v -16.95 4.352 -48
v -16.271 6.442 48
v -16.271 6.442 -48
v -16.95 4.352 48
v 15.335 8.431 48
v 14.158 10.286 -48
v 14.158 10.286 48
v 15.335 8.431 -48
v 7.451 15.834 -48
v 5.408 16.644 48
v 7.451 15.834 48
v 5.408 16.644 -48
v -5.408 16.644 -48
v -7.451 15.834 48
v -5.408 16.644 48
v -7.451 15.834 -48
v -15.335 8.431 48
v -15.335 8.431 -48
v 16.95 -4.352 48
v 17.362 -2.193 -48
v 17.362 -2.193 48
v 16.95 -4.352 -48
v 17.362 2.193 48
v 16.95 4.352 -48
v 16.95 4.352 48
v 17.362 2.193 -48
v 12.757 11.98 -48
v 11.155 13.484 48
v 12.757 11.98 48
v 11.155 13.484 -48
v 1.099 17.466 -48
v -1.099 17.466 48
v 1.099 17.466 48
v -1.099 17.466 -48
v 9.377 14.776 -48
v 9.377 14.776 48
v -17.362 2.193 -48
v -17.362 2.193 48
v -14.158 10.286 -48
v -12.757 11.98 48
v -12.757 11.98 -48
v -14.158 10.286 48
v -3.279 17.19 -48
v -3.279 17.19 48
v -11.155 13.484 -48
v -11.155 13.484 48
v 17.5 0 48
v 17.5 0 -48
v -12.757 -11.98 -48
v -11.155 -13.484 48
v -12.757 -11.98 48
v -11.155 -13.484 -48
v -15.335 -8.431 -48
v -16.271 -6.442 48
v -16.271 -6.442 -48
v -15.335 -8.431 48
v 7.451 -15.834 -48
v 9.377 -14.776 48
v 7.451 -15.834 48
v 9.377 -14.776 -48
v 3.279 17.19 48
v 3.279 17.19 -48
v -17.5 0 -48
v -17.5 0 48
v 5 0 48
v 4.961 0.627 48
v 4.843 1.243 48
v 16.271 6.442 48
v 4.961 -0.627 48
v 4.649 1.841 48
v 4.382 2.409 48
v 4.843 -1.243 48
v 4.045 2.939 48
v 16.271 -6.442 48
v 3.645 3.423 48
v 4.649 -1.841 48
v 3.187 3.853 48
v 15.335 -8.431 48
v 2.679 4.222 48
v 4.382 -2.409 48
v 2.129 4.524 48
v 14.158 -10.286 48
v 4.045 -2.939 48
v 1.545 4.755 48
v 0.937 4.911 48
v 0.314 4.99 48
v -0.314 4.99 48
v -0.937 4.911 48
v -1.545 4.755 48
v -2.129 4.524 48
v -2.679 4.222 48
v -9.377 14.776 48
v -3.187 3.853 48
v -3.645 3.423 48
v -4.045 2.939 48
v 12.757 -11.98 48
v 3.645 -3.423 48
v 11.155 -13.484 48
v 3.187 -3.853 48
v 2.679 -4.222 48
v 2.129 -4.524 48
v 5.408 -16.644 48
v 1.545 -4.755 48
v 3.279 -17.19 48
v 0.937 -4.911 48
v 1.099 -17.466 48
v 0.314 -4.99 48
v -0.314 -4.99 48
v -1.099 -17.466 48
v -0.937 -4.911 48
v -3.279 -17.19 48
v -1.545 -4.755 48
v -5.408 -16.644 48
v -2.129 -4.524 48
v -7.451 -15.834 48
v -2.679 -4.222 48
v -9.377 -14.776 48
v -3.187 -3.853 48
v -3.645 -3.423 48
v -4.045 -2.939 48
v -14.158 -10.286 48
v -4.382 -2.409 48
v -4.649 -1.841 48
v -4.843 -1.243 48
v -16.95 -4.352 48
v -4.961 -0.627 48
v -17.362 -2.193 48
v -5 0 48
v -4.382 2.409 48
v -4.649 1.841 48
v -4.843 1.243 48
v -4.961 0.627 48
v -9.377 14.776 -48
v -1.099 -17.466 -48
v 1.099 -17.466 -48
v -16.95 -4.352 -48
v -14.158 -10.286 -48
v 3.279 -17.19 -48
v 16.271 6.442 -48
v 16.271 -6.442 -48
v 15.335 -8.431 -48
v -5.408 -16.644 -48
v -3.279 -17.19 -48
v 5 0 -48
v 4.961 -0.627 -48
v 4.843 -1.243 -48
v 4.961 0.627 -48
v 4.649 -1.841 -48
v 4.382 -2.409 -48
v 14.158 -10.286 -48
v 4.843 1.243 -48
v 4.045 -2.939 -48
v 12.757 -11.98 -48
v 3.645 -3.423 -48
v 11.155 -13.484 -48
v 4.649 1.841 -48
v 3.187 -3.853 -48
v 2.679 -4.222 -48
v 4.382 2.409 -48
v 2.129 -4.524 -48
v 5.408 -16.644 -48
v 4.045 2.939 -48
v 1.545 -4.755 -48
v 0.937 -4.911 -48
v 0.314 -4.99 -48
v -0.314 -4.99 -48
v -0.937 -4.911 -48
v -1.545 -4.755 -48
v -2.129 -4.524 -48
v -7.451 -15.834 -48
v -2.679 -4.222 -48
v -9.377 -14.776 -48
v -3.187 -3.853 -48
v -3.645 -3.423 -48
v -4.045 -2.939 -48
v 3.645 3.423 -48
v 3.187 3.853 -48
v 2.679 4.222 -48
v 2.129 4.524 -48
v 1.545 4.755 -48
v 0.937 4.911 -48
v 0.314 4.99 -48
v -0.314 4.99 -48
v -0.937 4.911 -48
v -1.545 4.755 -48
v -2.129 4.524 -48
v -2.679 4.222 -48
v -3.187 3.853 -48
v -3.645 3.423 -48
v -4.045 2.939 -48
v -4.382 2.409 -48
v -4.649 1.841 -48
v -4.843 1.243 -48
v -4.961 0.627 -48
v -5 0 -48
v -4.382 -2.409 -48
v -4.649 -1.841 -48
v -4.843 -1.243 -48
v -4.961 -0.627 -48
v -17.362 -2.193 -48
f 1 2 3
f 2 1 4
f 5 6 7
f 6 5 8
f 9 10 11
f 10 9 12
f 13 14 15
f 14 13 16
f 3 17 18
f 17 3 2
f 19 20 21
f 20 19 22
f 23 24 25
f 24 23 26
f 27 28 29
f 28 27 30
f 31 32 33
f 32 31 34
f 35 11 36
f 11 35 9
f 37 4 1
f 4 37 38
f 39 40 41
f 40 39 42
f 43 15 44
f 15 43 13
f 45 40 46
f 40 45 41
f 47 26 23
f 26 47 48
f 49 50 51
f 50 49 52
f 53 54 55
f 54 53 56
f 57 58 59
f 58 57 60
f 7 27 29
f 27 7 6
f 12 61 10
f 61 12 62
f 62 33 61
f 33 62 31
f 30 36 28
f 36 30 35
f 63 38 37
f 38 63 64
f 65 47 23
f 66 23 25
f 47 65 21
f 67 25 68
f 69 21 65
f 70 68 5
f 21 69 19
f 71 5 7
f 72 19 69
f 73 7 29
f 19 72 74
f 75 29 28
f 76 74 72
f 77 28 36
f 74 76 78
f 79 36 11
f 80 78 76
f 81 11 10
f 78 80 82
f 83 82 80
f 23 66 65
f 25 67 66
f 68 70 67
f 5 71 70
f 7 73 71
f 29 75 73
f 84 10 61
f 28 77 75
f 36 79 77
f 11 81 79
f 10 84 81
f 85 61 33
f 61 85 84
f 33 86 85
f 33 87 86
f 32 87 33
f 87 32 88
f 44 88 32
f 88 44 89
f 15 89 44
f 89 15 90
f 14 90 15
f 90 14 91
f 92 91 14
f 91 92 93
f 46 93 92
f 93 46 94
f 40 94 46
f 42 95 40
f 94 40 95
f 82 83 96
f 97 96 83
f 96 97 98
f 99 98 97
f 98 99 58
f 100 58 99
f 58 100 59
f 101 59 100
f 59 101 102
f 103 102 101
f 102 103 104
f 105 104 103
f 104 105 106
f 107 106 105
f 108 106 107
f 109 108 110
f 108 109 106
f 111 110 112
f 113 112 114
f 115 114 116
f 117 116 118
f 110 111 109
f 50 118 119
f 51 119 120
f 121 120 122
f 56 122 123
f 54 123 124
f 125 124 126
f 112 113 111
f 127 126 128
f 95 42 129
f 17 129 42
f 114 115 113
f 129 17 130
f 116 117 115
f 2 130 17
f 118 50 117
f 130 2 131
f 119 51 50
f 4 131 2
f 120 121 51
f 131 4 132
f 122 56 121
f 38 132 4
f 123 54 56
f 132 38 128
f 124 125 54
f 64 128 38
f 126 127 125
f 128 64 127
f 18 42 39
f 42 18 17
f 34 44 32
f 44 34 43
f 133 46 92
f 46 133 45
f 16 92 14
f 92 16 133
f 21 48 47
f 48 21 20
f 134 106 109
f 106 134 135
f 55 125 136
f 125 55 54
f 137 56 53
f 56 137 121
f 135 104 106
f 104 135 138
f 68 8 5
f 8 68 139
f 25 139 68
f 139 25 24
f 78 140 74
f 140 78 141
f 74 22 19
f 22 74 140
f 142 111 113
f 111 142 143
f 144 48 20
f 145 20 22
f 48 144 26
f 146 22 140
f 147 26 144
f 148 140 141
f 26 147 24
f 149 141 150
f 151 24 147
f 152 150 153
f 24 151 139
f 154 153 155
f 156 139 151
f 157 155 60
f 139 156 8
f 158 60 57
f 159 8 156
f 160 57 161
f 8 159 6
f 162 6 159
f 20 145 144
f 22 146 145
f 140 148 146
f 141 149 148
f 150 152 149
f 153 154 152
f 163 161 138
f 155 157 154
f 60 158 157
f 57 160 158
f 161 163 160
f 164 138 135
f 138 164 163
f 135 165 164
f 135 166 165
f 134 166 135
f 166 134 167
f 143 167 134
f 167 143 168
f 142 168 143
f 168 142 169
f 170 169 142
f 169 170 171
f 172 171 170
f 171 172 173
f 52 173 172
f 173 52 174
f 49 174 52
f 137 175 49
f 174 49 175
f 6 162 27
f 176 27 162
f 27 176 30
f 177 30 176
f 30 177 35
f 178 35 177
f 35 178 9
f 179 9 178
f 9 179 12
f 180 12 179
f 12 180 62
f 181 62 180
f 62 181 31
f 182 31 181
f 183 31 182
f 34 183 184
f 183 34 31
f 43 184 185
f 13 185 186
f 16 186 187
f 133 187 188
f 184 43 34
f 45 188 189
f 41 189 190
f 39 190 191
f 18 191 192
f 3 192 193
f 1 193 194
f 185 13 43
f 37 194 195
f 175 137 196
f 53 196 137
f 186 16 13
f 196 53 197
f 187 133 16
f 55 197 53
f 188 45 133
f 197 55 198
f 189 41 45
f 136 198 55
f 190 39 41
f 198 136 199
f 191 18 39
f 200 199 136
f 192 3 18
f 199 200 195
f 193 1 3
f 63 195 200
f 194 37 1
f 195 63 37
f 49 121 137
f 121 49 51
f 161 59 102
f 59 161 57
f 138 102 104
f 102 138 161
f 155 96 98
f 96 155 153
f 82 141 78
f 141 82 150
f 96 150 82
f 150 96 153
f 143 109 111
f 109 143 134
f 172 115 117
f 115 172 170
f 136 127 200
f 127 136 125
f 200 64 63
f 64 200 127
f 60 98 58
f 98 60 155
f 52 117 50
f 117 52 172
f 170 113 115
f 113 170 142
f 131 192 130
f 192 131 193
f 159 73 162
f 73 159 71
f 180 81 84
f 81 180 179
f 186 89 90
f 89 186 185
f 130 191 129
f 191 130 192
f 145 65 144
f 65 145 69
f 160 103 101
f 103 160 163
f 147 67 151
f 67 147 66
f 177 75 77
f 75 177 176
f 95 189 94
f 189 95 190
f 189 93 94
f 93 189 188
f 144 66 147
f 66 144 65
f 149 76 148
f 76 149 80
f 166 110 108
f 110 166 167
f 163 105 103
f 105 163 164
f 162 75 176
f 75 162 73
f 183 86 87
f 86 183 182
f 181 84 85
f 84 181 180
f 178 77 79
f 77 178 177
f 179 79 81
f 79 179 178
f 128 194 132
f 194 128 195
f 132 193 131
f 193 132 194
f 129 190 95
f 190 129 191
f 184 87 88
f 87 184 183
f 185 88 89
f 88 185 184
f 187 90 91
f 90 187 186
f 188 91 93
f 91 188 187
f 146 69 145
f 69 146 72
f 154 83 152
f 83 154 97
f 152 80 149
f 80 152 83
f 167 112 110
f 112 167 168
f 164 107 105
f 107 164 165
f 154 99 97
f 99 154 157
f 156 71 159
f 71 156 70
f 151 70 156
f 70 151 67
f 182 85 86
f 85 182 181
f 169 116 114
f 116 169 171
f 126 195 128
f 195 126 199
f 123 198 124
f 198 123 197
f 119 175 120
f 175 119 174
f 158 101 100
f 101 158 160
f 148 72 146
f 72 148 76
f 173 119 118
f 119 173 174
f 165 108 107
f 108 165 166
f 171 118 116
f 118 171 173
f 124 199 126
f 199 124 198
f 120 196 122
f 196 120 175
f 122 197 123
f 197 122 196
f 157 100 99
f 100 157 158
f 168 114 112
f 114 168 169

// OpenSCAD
$fn = 50;


difference() {
	union() {
		translate(v = [0, 0, -48.0000000000]) {
			cylinder(h = 96, r = 17.5000000000);
		}
	}
	union() {
		translate(v = [0, 0, -100.0000000000]) {
			cylinder(h = 200, r = 5);
		}
	}
}
